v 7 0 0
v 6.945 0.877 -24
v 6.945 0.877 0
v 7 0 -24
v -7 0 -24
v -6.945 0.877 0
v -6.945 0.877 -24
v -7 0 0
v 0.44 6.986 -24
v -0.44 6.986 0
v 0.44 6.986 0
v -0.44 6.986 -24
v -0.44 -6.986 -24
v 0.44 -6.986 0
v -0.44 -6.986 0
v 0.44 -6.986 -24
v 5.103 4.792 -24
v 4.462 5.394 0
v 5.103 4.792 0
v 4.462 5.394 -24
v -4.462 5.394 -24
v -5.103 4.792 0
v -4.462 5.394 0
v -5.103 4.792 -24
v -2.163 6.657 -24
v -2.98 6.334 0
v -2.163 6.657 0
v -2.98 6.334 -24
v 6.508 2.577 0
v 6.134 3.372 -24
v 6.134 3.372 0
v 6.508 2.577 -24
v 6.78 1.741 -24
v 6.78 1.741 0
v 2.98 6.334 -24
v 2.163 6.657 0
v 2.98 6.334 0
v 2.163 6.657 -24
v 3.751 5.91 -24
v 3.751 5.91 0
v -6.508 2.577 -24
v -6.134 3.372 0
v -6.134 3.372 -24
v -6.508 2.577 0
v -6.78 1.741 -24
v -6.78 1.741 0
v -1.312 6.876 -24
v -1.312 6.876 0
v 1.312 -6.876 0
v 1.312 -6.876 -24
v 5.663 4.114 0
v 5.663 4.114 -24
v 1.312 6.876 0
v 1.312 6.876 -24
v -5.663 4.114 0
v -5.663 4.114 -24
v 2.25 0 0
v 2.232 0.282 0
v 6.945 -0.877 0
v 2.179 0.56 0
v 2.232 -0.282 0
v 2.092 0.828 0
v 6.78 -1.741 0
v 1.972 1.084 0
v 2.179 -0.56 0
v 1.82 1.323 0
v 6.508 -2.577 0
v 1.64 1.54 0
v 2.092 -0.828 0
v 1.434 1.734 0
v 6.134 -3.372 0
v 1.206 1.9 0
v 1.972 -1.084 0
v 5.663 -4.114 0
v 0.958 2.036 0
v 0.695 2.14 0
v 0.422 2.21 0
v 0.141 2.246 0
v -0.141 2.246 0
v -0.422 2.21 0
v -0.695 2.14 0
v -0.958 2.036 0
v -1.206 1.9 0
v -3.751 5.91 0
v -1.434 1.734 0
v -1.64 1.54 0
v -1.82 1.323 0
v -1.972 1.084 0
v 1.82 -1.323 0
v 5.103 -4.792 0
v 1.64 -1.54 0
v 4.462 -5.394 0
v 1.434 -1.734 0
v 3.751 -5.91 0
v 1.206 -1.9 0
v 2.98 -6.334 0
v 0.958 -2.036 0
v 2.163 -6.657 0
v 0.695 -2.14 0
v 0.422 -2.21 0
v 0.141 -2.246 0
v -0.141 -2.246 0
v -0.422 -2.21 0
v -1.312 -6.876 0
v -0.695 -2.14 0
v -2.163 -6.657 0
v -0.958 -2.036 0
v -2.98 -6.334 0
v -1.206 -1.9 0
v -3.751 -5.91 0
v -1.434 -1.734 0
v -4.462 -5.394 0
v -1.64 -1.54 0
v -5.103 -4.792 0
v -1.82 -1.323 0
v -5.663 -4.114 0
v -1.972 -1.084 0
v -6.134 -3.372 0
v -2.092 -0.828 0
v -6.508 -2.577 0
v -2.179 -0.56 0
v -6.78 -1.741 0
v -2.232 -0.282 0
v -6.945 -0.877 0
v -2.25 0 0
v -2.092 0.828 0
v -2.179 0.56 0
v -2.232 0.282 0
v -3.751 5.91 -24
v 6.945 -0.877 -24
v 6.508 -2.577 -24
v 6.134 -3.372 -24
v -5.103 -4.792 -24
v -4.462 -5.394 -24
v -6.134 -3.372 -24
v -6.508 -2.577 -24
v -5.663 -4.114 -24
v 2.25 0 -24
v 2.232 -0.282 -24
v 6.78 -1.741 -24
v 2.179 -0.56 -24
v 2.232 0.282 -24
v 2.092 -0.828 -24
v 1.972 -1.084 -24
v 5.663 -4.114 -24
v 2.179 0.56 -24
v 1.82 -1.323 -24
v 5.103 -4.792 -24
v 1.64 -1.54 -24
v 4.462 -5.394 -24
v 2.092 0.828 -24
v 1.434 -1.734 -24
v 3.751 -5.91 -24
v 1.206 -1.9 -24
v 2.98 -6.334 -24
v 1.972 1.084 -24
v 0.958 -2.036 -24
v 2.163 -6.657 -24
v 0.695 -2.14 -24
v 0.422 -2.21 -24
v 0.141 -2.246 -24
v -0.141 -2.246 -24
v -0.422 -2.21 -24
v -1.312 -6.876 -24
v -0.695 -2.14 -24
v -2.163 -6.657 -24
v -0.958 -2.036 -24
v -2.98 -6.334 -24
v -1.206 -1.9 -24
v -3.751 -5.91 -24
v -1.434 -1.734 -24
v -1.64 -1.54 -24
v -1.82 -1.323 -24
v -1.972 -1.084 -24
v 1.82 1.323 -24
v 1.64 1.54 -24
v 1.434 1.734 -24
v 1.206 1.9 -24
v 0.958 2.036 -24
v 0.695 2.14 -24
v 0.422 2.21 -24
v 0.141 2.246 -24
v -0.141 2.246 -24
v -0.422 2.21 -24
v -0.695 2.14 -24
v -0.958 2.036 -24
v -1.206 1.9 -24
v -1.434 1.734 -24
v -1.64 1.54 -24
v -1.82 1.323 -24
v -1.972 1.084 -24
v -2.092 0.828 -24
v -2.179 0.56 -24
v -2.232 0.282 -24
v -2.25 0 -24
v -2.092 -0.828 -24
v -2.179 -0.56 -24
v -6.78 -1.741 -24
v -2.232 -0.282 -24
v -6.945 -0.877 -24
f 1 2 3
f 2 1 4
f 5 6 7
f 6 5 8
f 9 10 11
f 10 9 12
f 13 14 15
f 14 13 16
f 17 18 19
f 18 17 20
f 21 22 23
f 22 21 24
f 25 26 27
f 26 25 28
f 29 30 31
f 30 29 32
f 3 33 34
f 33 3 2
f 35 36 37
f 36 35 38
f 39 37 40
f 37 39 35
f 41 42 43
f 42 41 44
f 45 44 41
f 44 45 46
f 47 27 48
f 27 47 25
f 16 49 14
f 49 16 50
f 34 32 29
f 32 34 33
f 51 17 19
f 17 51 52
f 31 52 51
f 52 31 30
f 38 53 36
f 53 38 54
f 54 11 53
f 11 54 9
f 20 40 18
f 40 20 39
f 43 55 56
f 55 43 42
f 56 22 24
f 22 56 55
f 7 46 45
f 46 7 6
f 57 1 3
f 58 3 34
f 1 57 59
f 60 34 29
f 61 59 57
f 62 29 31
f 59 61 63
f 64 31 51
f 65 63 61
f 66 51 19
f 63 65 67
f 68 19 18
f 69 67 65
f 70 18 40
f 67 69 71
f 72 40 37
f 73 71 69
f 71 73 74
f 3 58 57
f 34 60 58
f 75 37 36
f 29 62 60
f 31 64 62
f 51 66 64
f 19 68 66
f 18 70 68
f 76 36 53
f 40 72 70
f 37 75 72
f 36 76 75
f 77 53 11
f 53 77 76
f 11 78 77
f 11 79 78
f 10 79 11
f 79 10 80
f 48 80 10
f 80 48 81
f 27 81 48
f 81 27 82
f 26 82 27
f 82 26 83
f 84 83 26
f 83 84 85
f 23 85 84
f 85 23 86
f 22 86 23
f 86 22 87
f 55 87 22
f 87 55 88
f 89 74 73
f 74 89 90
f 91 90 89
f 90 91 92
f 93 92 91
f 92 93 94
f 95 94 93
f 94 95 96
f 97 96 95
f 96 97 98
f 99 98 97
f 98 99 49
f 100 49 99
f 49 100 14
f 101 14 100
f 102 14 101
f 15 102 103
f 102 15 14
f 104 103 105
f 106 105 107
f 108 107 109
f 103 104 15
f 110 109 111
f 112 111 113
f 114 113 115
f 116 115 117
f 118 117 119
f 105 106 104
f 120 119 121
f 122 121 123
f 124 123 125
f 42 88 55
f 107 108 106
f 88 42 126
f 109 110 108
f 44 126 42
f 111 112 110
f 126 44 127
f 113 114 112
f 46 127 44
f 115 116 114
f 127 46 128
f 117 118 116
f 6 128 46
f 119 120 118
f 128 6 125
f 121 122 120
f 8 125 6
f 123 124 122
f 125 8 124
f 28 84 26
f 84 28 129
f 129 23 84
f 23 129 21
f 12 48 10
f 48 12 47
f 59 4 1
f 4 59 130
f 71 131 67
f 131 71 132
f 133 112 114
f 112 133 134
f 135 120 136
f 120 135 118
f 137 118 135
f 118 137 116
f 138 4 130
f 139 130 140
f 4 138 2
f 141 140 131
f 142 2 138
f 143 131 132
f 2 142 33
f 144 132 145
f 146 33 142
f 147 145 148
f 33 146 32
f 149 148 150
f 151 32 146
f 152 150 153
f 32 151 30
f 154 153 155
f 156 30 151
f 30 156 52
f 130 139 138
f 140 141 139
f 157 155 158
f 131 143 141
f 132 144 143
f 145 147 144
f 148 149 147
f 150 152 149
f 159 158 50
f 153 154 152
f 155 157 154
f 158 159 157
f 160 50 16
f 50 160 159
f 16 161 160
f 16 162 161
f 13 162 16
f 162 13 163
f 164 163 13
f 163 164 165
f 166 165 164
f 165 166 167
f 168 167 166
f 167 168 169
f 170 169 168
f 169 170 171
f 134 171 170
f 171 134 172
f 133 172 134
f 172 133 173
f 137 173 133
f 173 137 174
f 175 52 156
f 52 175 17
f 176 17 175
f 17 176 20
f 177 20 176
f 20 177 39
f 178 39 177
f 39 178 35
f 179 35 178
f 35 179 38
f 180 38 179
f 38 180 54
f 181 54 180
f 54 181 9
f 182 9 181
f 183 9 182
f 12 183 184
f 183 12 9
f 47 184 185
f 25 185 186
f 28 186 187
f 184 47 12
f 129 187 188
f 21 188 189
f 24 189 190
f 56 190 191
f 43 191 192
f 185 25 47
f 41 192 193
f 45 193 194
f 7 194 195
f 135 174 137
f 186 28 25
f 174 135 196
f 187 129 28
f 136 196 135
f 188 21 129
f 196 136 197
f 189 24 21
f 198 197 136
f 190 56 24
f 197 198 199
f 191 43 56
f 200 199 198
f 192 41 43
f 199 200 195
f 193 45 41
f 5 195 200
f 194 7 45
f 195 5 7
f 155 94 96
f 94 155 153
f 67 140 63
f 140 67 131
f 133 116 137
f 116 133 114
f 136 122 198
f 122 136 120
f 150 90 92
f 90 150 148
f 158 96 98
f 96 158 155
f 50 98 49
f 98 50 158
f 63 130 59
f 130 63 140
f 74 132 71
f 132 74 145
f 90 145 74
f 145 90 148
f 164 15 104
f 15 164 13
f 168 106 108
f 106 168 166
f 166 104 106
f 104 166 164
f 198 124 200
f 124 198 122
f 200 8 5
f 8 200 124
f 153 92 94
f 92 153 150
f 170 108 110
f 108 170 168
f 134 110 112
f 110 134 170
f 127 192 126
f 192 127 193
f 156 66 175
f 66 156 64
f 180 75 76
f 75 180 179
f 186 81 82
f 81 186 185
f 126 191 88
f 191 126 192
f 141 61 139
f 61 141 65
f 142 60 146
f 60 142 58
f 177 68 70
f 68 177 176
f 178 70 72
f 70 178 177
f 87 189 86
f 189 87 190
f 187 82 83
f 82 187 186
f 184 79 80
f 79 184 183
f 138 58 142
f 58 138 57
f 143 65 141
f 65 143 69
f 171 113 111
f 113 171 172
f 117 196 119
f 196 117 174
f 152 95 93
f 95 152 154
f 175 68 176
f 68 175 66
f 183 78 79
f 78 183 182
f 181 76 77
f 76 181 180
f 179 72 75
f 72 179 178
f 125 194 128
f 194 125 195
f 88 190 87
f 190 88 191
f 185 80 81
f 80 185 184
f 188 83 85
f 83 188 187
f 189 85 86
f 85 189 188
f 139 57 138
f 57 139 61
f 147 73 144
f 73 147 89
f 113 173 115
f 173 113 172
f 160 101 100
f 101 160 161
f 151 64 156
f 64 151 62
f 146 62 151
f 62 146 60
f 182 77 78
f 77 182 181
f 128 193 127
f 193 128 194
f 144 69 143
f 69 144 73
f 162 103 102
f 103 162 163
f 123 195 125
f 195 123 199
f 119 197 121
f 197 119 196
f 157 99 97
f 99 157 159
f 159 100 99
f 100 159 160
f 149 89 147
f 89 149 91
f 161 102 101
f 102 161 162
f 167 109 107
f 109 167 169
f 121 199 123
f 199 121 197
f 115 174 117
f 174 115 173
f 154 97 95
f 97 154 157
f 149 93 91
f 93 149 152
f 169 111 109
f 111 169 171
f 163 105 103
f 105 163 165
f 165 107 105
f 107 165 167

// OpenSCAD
$fn = 50;


difference() {
	union() {
		translate(v = [0, 0, -24.0000000000]) {
			cylinder(h = 24, r = 7.0000000000);
		}
		cylinder(h = 0, r = 16.0000000000);
	}
	union() {
		#translate(v = [0, 0, -24]) {
			cylinder(h = 24, r = 2.2500000000);
		}
	}
}
